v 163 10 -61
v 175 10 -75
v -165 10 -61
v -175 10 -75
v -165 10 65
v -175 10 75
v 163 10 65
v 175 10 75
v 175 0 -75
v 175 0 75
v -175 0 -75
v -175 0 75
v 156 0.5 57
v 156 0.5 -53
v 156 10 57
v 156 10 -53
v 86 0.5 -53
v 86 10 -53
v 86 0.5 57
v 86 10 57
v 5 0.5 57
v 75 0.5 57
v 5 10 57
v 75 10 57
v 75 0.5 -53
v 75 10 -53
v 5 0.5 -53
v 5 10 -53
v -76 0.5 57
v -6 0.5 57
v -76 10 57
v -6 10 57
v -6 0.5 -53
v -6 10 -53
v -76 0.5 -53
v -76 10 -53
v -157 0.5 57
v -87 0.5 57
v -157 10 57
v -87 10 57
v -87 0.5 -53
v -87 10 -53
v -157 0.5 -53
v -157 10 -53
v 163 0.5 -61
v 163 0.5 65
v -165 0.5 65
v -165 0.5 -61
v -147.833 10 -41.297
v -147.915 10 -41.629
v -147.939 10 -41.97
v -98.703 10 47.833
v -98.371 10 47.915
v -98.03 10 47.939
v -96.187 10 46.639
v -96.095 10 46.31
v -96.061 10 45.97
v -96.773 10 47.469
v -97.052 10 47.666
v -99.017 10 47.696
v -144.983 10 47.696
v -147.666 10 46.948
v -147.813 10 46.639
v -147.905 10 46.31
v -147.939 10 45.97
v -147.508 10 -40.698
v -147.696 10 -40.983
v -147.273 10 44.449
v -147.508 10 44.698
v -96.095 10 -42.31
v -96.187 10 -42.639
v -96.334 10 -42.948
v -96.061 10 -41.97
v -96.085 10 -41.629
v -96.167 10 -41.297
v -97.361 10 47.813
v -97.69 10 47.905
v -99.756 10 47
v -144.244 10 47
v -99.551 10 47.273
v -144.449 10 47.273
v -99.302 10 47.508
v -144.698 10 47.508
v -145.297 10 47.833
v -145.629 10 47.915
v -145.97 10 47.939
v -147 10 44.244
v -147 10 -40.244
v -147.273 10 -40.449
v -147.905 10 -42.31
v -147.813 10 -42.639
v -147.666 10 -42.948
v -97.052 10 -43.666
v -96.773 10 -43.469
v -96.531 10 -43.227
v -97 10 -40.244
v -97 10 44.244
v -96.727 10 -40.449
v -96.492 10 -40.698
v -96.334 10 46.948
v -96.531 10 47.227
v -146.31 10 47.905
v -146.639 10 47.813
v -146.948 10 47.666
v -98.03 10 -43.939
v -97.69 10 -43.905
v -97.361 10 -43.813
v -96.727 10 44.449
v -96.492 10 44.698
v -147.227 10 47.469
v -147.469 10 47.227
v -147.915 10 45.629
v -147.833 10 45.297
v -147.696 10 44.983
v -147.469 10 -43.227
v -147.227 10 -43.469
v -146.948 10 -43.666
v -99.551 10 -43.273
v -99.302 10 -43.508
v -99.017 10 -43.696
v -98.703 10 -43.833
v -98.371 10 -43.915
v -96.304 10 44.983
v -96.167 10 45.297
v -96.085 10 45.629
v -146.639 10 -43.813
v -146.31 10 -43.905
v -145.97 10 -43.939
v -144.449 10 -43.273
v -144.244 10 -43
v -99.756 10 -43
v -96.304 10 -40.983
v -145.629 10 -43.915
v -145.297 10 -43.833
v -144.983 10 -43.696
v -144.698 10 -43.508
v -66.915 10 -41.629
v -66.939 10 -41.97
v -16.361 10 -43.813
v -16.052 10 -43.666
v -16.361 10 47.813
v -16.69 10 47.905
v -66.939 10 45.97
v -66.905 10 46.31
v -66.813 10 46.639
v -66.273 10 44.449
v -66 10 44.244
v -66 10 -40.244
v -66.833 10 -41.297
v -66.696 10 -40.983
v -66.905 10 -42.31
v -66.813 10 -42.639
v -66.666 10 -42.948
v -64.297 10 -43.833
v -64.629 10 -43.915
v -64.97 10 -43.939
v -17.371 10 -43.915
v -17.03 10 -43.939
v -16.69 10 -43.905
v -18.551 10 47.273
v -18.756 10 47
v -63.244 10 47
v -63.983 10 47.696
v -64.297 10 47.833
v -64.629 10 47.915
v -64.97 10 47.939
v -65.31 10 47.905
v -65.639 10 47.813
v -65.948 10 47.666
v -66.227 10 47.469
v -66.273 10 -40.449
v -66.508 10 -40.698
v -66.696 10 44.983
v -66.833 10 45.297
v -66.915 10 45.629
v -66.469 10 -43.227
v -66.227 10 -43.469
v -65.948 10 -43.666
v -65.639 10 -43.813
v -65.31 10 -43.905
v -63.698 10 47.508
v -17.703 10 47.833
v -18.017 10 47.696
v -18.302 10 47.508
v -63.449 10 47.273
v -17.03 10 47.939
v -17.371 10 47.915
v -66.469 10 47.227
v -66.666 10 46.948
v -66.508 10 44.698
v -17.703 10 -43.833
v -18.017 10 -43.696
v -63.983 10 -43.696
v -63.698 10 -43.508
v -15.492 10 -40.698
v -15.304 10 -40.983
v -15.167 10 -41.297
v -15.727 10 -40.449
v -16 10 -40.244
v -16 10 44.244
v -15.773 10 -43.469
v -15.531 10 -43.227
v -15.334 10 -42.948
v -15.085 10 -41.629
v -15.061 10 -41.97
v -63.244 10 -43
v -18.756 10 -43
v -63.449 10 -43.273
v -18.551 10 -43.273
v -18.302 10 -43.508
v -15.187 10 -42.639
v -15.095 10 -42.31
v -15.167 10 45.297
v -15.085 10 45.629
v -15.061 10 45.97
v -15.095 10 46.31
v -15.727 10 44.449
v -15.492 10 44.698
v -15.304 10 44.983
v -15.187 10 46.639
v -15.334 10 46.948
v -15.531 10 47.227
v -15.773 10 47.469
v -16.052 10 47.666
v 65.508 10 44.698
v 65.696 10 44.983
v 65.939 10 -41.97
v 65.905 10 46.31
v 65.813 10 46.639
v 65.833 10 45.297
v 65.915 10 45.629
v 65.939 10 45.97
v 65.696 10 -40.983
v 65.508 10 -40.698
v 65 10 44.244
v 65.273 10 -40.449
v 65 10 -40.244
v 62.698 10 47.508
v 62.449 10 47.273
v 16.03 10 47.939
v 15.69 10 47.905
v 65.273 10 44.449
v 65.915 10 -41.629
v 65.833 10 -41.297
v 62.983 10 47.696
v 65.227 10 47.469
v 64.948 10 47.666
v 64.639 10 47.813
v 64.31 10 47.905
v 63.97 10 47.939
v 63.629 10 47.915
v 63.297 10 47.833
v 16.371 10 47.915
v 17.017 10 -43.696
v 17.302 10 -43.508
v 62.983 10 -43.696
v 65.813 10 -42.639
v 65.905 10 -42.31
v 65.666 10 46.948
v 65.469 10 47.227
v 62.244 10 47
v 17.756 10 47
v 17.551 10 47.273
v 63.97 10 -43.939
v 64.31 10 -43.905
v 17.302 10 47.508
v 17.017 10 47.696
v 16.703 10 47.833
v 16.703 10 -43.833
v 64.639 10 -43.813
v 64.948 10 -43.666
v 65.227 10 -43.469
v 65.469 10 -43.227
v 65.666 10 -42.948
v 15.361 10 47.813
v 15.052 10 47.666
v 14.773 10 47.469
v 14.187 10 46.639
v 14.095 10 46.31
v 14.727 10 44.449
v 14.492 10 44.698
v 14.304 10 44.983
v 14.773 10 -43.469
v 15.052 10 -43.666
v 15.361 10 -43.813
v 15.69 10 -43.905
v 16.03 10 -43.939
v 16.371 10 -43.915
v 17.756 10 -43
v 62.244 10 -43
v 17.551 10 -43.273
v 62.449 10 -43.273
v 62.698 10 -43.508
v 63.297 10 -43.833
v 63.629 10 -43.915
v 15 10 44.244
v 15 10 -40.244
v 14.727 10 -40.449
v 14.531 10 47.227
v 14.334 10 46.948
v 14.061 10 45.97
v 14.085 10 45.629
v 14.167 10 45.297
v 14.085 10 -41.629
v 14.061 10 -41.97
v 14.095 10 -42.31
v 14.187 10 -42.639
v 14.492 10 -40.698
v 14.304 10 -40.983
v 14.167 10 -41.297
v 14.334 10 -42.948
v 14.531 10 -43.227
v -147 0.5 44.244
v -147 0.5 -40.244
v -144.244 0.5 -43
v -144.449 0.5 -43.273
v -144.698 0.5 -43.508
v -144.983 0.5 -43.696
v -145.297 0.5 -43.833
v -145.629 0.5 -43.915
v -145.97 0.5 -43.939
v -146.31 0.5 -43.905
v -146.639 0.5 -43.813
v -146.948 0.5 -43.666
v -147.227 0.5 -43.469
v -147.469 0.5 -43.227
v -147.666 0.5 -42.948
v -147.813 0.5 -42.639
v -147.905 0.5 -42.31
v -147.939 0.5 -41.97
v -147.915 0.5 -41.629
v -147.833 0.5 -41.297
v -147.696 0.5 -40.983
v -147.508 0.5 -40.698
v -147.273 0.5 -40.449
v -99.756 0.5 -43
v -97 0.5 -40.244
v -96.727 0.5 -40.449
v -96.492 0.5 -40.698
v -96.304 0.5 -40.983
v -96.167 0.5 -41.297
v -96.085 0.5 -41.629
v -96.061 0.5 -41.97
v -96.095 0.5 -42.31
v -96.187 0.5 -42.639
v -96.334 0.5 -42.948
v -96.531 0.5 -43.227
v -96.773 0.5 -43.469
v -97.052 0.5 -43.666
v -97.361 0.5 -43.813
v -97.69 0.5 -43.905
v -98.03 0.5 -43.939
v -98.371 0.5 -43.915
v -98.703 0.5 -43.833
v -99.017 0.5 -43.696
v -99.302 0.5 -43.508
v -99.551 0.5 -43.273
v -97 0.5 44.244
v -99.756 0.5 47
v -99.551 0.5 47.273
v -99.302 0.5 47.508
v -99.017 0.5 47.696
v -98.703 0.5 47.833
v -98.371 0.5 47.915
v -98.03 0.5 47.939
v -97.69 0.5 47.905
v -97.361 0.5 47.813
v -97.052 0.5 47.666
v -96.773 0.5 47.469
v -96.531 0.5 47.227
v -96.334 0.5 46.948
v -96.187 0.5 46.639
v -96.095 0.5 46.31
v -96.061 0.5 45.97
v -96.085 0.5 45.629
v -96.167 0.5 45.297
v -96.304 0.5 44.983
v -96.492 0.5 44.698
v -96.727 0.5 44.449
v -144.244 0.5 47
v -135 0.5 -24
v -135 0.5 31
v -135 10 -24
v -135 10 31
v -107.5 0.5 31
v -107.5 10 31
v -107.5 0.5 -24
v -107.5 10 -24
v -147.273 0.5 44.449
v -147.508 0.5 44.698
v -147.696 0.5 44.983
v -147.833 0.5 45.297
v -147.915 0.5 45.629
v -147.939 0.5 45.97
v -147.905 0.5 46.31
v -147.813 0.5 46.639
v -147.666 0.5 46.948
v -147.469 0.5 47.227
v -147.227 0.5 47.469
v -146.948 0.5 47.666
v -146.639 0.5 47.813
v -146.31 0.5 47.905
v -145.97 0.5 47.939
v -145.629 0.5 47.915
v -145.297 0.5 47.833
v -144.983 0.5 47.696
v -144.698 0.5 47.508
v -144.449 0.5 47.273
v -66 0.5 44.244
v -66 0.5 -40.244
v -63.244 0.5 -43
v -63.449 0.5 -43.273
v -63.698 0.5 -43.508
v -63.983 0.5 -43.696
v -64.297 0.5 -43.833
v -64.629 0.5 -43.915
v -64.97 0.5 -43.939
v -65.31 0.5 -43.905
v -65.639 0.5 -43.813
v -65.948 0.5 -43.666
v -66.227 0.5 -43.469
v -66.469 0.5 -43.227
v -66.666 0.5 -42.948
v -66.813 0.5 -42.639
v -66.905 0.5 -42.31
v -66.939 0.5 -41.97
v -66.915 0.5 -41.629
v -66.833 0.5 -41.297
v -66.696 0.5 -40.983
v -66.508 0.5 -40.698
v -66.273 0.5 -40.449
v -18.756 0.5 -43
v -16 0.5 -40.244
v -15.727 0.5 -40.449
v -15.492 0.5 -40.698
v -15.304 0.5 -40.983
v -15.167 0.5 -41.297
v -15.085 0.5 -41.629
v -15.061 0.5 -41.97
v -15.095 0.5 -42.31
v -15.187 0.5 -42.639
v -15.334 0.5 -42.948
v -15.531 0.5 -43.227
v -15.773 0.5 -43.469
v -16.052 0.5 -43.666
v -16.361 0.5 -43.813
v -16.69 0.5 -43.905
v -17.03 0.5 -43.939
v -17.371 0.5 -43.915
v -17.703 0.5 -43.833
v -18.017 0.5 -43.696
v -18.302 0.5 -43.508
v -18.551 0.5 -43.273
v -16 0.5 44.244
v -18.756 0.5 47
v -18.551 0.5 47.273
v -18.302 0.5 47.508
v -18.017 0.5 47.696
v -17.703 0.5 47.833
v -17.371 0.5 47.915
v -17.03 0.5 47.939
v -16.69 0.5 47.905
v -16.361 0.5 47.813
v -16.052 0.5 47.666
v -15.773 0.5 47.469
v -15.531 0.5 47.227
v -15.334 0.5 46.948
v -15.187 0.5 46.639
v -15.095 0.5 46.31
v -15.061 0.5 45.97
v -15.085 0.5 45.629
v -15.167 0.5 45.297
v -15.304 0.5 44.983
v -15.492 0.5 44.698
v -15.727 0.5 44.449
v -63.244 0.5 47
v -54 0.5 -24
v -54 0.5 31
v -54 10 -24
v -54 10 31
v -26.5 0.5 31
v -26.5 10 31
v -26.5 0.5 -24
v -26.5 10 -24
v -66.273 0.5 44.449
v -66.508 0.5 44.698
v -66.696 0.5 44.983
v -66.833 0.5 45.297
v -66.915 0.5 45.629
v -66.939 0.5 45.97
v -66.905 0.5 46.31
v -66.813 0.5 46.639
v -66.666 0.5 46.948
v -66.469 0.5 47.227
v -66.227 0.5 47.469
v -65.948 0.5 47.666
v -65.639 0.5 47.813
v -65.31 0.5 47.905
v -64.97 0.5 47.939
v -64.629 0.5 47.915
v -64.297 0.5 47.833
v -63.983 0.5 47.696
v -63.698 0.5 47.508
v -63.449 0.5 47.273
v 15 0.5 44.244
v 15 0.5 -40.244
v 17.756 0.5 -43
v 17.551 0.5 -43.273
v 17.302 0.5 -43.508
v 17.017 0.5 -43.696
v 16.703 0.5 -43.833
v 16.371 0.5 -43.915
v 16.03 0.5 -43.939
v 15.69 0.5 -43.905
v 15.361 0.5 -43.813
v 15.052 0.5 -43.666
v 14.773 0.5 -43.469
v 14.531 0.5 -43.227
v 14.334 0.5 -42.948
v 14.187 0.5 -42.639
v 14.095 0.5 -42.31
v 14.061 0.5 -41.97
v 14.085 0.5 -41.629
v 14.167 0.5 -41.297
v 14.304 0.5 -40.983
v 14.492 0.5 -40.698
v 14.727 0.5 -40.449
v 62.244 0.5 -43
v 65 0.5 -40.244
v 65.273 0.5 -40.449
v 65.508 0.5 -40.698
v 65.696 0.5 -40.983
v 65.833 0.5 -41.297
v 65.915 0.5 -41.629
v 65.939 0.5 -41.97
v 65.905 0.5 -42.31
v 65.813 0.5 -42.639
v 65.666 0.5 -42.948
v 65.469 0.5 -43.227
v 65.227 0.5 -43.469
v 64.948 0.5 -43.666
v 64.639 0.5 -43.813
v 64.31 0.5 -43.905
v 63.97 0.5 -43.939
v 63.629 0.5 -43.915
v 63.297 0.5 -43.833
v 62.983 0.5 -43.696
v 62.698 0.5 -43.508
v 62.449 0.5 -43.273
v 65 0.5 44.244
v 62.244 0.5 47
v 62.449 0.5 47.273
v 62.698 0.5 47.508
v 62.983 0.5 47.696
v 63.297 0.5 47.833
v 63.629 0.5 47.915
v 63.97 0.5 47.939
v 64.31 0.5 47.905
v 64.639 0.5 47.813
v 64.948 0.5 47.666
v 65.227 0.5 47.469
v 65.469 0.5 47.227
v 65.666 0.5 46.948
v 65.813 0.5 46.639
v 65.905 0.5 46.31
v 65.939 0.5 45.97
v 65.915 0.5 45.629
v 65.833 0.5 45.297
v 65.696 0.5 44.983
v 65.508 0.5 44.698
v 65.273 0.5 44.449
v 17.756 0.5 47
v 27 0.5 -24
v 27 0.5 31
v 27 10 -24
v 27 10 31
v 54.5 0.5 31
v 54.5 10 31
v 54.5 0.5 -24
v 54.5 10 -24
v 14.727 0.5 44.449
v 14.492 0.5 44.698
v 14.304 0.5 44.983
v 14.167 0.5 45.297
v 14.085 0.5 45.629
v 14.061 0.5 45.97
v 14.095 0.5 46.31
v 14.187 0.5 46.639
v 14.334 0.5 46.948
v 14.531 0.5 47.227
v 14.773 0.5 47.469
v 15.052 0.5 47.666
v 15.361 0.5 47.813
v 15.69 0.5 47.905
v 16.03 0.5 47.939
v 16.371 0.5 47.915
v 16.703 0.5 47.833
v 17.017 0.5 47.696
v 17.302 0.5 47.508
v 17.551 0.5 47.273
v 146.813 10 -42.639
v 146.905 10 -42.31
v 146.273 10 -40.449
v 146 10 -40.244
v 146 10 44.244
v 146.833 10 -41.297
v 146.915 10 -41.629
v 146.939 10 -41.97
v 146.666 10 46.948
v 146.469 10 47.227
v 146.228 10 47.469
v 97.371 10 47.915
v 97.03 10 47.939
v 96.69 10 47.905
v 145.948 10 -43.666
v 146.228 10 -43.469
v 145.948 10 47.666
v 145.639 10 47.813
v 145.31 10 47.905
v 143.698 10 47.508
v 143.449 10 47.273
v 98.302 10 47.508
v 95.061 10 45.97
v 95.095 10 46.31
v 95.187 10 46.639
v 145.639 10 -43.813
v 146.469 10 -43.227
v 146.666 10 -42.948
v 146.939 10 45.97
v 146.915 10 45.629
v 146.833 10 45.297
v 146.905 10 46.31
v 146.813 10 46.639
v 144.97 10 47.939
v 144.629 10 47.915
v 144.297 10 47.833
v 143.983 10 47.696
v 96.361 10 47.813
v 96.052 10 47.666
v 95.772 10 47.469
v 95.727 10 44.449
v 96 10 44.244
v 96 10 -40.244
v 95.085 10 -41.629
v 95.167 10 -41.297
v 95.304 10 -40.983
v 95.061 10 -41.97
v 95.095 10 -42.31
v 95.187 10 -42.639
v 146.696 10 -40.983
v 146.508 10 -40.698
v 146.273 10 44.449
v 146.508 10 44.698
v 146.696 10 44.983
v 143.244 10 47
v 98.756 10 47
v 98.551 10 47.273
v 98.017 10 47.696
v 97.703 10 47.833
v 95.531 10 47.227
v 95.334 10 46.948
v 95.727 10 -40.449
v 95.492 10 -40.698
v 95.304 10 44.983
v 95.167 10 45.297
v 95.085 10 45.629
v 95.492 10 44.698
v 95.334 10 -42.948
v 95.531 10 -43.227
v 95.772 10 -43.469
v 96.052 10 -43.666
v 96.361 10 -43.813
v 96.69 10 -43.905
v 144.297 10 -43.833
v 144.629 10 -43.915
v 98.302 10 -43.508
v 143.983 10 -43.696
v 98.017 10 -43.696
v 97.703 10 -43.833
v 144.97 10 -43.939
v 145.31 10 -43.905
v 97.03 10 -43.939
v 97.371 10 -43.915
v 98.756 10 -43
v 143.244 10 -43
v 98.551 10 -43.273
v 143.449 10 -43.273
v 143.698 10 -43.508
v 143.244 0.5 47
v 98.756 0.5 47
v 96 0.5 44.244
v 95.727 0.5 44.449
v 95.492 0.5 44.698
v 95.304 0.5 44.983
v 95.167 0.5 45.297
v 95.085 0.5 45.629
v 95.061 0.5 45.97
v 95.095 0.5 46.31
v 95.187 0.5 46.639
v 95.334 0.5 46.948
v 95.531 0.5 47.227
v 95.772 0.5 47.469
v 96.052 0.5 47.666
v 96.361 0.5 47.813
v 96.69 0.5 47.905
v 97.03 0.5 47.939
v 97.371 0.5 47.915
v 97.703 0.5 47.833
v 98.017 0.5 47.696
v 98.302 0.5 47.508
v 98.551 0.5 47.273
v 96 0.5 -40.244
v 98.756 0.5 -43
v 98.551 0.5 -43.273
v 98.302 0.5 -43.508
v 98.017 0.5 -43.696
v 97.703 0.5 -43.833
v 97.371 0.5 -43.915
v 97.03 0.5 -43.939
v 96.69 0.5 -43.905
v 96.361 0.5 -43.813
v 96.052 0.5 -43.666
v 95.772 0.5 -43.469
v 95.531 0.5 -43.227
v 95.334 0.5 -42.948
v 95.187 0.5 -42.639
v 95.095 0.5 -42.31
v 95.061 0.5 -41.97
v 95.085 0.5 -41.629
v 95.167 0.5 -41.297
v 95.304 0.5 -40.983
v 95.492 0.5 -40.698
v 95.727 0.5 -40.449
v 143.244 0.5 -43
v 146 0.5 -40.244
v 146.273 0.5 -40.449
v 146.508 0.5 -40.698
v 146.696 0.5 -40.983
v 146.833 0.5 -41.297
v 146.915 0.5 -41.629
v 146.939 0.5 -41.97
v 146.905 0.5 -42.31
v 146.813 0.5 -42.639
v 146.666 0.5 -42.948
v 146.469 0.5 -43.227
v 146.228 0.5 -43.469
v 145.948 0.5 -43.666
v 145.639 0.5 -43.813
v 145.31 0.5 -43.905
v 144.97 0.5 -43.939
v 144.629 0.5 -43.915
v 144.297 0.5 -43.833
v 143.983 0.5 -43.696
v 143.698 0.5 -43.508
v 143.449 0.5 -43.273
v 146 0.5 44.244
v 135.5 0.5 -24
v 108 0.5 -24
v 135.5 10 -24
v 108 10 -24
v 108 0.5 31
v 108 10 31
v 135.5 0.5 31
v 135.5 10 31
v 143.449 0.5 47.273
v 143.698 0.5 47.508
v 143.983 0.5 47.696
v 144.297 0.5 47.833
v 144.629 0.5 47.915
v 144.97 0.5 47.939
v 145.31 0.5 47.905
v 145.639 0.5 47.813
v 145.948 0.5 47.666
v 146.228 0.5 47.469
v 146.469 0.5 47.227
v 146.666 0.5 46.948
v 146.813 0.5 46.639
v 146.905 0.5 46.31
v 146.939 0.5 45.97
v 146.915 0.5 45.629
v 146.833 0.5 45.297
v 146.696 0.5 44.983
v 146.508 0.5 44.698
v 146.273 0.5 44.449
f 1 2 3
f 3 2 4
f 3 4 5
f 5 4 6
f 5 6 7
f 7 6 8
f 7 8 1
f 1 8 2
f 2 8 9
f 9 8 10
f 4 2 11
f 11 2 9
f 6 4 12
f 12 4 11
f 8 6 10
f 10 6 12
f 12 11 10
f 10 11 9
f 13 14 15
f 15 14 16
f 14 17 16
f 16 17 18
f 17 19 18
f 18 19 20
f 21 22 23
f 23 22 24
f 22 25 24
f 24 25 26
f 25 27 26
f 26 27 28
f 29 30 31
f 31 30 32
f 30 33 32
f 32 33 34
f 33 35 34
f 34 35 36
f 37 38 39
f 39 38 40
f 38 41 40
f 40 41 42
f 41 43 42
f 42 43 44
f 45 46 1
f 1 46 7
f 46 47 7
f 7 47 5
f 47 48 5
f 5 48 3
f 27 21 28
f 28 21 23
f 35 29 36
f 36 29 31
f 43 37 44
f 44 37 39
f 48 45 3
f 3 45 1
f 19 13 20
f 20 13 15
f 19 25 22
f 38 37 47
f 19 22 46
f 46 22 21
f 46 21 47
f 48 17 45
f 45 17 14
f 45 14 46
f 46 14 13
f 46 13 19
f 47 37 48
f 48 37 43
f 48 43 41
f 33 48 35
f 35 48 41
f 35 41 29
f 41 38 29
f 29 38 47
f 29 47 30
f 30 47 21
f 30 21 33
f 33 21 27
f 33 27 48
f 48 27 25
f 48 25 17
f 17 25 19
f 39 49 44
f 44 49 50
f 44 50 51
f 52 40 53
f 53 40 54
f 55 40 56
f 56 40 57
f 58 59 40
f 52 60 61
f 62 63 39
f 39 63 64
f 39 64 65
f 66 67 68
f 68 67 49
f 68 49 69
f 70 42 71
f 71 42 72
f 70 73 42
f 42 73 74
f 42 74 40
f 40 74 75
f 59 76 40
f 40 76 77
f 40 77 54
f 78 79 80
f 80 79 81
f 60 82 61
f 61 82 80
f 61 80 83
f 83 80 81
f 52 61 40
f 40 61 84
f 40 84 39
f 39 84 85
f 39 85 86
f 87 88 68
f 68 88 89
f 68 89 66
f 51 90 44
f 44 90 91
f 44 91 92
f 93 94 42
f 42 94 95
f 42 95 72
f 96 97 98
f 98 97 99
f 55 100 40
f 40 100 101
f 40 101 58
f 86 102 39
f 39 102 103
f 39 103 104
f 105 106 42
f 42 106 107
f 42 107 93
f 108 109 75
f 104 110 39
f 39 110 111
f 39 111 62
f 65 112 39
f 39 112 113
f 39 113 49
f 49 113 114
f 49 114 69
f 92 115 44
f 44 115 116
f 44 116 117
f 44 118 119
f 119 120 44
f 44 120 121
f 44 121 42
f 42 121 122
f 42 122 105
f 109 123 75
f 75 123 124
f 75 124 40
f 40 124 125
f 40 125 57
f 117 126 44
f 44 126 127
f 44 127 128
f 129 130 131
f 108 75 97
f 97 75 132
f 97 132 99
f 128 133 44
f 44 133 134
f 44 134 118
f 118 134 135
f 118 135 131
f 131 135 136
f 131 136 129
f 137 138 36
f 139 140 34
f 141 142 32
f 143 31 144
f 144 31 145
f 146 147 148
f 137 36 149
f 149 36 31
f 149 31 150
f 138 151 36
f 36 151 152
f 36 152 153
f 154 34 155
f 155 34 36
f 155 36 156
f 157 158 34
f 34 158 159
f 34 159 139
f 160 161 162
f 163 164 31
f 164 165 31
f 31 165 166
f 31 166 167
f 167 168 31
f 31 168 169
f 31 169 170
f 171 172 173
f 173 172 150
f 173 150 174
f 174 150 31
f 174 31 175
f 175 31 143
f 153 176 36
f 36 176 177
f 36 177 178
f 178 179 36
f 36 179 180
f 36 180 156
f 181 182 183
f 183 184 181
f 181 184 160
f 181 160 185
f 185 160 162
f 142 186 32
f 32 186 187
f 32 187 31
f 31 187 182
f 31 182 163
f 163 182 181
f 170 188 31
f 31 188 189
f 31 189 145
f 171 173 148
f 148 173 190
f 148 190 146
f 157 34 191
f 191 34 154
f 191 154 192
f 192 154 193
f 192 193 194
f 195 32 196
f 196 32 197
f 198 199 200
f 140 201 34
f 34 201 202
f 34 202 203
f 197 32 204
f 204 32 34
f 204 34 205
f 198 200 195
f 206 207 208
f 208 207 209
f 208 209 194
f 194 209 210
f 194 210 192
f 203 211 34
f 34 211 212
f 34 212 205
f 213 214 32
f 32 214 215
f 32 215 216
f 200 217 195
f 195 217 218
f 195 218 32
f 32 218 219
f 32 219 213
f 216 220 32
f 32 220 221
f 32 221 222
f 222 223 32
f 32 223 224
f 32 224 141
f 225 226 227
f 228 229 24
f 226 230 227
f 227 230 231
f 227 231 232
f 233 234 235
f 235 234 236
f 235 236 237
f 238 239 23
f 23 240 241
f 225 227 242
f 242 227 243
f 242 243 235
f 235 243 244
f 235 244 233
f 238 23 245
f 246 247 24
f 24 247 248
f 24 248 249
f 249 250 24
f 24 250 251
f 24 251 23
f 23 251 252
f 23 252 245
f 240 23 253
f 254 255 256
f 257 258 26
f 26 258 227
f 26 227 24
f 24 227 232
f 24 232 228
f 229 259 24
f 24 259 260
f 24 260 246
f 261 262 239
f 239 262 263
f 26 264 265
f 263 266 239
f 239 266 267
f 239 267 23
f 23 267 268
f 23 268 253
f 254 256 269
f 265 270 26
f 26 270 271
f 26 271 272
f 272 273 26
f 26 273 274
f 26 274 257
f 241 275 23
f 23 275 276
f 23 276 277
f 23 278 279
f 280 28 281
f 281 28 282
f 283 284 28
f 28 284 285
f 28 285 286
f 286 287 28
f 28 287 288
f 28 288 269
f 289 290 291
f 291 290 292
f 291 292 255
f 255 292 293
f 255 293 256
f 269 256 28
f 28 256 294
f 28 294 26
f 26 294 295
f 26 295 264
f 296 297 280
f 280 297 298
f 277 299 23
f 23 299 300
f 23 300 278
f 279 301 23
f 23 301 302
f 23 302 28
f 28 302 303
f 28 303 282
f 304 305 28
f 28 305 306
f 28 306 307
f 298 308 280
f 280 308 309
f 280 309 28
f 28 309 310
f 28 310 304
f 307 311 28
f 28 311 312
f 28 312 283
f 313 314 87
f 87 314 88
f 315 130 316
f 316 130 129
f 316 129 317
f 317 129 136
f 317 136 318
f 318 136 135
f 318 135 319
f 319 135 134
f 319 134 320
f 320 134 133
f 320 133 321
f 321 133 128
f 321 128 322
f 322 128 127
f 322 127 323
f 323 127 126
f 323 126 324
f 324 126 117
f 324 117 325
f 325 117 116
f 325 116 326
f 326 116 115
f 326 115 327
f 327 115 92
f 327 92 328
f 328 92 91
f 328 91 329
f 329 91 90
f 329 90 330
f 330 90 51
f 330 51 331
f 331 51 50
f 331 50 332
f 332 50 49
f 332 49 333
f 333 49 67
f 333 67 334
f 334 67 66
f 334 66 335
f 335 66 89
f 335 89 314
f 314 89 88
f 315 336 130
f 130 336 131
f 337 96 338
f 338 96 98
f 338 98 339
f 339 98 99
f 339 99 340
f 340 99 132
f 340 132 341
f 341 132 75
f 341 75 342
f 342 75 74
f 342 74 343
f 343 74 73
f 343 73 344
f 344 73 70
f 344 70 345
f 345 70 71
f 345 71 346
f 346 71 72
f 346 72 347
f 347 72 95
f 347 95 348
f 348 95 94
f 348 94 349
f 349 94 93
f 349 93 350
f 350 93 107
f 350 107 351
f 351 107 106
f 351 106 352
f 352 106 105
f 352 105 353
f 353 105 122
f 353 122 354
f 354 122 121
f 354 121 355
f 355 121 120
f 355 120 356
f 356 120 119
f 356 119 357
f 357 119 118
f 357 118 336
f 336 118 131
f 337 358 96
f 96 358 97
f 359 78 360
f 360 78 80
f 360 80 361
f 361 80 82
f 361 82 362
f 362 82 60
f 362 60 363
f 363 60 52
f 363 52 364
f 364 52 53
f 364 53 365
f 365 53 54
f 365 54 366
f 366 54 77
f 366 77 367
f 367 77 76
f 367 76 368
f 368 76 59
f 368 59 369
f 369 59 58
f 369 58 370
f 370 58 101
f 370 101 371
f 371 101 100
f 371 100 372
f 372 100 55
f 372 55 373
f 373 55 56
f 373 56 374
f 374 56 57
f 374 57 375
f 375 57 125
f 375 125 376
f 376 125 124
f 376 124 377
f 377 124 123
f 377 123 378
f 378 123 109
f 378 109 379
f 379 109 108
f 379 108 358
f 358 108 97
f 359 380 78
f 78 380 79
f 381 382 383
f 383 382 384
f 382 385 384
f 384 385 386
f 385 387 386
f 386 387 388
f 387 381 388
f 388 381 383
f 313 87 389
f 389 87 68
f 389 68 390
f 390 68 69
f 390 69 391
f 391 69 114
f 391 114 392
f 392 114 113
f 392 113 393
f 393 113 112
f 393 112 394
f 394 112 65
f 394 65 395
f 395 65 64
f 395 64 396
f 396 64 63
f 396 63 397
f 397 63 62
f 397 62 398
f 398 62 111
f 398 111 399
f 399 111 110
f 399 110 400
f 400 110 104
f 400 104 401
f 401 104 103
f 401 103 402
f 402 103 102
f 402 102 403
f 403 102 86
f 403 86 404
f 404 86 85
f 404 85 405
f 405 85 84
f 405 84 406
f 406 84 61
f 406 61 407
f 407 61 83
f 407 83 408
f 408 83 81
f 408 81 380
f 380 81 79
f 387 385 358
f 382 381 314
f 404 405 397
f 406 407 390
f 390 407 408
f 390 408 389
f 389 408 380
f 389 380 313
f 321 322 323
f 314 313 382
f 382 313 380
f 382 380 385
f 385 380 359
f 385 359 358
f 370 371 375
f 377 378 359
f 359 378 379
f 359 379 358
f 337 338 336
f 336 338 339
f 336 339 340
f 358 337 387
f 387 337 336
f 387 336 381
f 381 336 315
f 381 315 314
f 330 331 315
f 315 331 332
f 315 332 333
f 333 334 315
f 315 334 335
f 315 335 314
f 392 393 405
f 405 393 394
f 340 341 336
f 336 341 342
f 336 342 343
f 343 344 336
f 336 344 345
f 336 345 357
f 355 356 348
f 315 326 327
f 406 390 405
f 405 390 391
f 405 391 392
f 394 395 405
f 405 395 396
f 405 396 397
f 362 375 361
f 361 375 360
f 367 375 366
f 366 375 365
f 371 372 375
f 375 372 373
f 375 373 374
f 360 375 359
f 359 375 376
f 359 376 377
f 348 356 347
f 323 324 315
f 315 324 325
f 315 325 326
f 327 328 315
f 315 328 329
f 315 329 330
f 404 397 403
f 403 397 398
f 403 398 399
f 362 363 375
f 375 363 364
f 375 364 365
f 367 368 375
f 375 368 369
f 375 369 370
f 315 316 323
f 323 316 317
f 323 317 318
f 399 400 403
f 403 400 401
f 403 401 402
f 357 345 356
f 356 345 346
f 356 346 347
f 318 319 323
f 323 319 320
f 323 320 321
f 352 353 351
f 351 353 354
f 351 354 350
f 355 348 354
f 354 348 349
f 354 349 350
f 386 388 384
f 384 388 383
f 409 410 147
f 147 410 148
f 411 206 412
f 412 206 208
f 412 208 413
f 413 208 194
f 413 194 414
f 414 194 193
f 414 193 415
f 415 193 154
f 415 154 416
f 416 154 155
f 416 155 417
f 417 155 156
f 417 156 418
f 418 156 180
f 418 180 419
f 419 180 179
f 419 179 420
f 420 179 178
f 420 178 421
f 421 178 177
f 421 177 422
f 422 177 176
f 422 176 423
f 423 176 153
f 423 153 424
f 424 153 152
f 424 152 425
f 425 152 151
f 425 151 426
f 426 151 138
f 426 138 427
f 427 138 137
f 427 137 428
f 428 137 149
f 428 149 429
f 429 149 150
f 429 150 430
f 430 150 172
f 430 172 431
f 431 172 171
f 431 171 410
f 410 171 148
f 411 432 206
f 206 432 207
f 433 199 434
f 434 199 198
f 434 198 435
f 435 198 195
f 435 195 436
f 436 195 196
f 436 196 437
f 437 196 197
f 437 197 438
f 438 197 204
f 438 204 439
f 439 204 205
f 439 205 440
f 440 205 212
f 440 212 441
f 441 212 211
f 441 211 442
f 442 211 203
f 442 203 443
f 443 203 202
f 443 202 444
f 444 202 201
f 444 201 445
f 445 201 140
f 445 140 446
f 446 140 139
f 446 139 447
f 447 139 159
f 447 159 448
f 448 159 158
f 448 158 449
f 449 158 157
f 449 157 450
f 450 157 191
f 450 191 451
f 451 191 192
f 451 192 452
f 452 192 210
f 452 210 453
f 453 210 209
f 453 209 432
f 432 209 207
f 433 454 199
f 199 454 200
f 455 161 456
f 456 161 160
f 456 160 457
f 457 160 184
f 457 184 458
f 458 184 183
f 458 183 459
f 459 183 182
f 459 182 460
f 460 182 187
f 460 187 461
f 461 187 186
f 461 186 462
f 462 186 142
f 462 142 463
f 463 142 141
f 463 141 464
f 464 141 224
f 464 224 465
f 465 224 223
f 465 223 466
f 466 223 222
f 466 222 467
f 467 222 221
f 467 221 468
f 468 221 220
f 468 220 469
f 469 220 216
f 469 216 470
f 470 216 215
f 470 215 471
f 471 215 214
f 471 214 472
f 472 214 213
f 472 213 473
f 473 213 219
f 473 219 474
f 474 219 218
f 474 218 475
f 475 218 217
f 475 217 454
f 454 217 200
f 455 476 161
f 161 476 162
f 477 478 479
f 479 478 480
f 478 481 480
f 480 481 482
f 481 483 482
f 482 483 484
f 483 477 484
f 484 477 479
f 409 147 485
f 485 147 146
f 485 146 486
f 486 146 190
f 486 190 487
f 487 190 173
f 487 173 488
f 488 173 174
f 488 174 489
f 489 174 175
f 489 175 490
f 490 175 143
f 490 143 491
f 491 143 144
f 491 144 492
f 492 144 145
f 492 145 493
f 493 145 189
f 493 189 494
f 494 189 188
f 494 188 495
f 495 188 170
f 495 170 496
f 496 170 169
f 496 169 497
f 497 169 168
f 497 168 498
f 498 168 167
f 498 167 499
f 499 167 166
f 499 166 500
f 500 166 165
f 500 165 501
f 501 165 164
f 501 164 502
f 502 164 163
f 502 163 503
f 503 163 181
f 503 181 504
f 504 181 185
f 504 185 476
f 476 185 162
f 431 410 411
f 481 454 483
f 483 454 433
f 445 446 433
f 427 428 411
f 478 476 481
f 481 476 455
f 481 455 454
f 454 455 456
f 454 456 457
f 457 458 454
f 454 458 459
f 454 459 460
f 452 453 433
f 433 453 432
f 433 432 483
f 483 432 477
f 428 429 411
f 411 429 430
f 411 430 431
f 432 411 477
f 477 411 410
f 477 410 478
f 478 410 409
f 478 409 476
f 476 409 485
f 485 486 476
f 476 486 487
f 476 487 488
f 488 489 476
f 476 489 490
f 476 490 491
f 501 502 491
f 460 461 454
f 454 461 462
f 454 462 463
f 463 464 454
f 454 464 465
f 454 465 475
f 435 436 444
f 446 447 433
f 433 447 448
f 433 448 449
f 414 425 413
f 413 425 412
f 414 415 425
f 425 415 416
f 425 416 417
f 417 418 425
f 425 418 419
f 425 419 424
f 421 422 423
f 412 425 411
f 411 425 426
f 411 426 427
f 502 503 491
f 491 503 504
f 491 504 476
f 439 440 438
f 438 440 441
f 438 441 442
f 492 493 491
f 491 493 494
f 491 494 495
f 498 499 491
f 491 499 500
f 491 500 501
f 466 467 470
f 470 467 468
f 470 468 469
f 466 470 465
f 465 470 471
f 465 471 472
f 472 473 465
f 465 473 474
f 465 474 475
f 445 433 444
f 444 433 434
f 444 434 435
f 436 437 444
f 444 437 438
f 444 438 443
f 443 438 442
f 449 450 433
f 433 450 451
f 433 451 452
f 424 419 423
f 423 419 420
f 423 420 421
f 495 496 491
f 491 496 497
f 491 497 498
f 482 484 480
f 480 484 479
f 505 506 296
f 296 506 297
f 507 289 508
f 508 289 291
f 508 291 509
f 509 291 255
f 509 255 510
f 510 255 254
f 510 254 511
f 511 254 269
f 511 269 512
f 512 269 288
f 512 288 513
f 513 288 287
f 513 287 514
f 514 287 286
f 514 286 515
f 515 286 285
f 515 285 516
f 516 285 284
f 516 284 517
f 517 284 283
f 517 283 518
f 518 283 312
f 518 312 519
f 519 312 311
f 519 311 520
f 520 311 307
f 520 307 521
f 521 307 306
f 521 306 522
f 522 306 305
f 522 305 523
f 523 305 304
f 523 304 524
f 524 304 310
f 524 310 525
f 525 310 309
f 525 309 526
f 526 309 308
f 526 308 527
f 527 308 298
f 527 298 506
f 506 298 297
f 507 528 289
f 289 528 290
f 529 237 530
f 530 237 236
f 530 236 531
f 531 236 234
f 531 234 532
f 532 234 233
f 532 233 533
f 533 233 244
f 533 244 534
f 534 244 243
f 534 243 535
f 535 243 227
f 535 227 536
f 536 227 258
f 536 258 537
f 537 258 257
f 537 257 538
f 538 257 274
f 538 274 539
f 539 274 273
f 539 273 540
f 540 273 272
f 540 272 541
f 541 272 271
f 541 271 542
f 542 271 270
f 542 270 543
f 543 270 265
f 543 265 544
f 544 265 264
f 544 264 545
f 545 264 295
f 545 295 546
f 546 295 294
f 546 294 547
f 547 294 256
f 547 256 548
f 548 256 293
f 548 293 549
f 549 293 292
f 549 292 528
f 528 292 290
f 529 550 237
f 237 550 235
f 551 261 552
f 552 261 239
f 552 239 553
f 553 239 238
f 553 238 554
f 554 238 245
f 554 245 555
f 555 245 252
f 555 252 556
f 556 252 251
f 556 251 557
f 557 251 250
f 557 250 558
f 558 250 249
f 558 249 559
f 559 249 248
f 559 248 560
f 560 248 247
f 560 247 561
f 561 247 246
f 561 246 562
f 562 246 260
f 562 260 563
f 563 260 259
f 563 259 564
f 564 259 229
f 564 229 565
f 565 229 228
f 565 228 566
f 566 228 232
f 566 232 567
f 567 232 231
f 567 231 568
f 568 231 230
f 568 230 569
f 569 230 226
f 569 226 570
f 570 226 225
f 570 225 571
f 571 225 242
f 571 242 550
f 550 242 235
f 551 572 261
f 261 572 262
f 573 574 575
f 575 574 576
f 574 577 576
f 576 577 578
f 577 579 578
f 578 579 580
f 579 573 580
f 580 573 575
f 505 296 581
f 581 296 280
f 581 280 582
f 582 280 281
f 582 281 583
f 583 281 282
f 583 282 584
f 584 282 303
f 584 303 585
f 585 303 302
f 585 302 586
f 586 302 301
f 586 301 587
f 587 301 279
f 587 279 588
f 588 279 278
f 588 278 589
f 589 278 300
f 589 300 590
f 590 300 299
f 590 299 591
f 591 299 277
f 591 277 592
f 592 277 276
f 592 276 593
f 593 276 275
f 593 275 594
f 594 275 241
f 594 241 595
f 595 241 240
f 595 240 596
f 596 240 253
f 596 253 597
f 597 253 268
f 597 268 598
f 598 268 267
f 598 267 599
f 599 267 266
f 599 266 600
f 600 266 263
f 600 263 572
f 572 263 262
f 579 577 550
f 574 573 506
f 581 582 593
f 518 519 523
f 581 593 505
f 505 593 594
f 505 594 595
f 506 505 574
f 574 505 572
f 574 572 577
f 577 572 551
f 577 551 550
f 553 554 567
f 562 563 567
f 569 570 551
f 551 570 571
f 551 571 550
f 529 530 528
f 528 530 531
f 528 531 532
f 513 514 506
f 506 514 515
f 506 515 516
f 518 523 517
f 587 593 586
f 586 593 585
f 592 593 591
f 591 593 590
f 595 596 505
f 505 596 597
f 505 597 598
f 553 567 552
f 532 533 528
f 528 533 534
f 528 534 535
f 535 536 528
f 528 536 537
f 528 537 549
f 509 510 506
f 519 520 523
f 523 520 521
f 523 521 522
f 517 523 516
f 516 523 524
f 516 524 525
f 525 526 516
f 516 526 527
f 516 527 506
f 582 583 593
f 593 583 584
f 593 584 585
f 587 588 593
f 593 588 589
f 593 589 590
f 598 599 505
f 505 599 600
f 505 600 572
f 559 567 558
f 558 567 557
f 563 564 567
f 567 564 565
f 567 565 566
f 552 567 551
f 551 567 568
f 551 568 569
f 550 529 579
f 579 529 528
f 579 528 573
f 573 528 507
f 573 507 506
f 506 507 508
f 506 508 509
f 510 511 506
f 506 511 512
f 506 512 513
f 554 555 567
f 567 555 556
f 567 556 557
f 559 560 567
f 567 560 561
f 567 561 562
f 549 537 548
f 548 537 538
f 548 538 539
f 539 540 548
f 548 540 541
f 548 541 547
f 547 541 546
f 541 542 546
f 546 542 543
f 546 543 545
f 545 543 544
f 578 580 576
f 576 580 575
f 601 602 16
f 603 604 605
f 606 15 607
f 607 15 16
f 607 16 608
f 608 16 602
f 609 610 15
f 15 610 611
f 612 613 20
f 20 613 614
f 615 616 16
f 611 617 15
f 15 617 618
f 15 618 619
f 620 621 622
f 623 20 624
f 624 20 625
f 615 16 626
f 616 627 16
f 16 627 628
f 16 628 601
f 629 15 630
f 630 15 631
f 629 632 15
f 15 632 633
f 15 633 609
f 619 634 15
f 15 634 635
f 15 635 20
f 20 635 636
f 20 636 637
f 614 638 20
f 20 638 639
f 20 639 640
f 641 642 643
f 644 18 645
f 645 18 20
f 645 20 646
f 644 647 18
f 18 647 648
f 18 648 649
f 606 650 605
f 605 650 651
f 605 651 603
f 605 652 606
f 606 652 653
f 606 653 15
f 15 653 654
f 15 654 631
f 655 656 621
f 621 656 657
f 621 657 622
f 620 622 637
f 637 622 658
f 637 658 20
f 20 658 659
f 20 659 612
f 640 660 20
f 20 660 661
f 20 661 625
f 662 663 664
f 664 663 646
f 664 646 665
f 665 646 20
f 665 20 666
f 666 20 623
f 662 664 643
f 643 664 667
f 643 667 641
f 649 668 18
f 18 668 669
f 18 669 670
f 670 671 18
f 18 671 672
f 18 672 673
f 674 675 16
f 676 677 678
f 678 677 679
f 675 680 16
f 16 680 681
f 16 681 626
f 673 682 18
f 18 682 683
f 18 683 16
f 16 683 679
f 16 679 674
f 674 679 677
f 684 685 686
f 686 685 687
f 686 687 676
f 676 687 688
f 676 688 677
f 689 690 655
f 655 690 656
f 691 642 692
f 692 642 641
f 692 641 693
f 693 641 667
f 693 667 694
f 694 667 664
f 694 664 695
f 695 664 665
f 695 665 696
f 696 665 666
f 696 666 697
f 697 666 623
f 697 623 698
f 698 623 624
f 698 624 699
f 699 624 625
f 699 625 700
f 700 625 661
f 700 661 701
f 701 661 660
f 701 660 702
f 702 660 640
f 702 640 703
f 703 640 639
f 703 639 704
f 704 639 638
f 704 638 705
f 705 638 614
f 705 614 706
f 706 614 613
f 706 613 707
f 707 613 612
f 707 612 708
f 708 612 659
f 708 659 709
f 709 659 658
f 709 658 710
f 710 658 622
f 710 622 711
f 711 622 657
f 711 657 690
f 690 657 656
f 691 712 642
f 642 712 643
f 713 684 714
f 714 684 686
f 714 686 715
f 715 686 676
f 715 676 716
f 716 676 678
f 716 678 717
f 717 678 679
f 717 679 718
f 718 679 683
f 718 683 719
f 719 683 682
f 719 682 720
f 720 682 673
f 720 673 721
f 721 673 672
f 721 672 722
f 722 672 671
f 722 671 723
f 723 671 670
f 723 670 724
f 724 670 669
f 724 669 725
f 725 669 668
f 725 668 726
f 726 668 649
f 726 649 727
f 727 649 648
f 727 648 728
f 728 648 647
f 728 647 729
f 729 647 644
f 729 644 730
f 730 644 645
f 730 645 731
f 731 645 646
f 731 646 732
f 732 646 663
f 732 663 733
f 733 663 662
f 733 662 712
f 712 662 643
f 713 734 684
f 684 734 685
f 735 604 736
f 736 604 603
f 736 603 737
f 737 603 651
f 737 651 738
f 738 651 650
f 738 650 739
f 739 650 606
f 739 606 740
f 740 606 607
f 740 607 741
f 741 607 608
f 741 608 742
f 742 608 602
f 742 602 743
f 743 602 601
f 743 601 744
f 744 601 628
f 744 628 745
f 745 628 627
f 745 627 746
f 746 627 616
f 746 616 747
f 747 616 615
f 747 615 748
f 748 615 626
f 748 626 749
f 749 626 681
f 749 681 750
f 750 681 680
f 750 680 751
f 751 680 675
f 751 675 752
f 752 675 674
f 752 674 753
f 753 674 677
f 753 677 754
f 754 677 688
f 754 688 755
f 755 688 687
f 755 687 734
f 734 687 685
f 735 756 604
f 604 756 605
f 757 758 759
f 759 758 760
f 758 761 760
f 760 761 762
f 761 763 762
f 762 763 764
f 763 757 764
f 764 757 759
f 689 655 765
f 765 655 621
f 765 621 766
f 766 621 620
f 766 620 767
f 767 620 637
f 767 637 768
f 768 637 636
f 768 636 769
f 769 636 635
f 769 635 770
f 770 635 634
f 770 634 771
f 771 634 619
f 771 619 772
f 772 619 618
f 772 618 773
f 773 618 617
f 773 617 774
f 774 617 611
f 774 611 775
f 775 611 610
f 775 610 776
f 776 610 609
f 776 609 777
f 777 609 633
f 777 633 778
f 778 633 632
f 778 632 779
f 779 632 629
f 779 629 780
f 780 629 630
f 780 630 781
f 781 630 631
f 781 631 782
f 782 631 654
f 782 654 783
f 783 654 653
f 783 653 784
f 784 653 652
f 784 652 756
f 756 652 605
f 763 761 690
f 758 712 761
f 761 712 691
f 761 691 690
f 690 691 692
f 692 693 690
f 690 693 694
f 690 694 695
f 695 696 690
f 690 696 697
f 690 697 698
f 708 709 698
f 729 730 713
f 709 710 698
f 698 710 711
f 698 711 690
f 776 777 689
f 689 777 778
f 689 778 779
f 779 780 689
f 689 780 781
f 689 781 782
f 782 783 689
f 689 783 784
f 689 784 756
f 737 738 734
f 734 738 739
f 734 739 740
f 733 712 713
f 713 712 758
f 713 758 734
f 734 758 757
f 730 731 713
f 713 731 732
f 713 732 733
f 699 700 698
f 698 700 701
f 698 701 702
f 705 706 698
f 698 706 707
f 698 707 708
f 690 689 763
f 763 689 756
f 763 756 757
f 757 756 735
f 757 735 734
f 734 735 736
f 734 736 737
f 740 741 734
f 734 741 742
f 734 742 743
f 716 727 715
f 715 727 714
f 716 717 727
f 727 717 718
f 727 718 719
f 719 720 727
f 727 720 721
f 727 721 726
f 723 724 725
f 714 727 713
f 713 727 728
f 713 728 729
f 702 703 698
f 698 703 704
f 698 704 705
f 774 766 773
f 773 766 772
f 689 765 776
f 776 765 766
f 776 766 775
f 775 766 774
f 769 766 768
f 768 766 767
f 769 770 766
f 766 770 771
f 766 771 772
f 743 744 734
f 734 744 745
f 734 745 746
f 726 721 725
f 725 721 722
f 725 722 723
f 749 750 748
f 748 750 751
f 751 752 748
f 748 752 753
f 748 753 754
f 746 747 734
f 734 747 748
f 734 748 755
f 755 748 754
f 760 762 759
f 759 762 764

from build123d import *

# Parameters (mm, degrees)
SKETCH1_W           = 350
SKETCH1_H           = 150
BOSS_EXTRUDE1_DEPTH = 10
SKETCH2_W           = 328
SKETCH2_H           = 126
SKETCH2_W_2         = 70
SKETCH2_H_2         = 110
SKETCH2_W_3         = 27.5
SKETCH2_H_3         = 55
CUT_EXTRUDE1_DEPTH  = 9.5


with BuildPart() as part:
    # Sketch1 → Boss-Extrude1 (new body)
    with BuildSketch(Plane(origin=(0, 0, 0), x_dir=(1, 0, 0), z_dir=(0, 1, 0))):
        Rectangle(SKETCH1_W, SKETCH1_H)
    extrude(amount=BOSS_EXTRUDE1_DEPTH)

    # Sketch2 → Cut-Extrude1 (cut)
    # profile 1 of 5: a face of its own
    with BuildSketch(Plane(origin=(0, 10, 0), x_dir=(1, 0, 0), z_dir=(0, 1, 0))):
        with Locations((-1, -2)):
            Rectangle(SKETCH2_W, SKETCH2_H)
        with Locations((-122, -2)):
            Rectangle(SKETCH2_W_2, SKETCH2_H_2, mode=Mode.SUBTRACT)
        with Locations((-41, -2)):
            Rectangle(SKETCH2_W_2, SKETCH2_H_2, mode=Mode.SUBTRACT)
        with Locations((40, -2)):
            Rectangle(SKETCH2_W_2, SKETCH2_H_2, mode=Mode.SUBTRACT)
        with Locations((121, -2)):
            Rectangle(SKETCH2_W_2, SKETCH2_H_2, mode=Mode.SUBTRACT)
    # profile 2 of 5: a face of its own
    with BuildSketch(Plane(origin=(0, 10, 0), x_dir=(1, 0, 0), z_dir=(0, 1, 0))):
        with BuildLine():
            Line((-147, -44.243757332), (-147, 40.243757332))
            ThreePointArc((-147, 40.243757332), (-147.353553391, 43.353553391), (-144.243757332, 43))
            Line((-144.243757332, 43), (-99.756242668, 43))
            ThreePointArc((-99.756242668, 43), (-96.646446609, 43.353553391), (-97, 40.243757332))
            Line((-97, 40.243757332), (-97, -44.243757332))
            ThreePointArc((-97, -44.243757332), (-96.646446609, -47.353553391), (-99.756242668, -47))
            Line((-99.756242668, -47), (-144.243757332, -47))
            ThreePointArc((-144.243757332, -47), (-147.353553391, -47.353553391), (-147, -44.243757332))
        make_face()
        with Locations((-121.25, -3.5)):
            Rectangle(SKETCH2_W_3, SKETCH2_H_3, mode=Mode.SUBTRACT)
    # profile 3 of 5: a face of its own
    with BuildSketch(Plane(origin=(0, 10, 0), x_dir=(1, 0, 0), z_dir=(0, 1, 0))):
        with BuildLine():
            Line((-66, -44.243757332), (-66, 40.243757332))
            ThreePointArc((-66, 40.243757332), (-66.353553391, 43.353553391), (-63.243757332, 43))
            Line((-63.243757332, 43), (-18.756242668, 43))
            ThreePointArc((-18.756242668, 43), (-15.646446609, 43.353553391), (-16, 40.243757332))
            Line((-16, 40.243757332), (-16, -44.243757332))
            ThreePointArc((-16, -44.243757332), (-15.646446609, -47.353553391), (-18.756242668, -47))
            Line((-18.756242668, -47), (-63.243757332, -47))
            ThreePointArc((-63.243757332, -47), (-66.353553391, -47.353553391), (-66, -44.243757332))
        make_face()
        with Locations((-40.25, -3.5)):
            Rectangle(SKETCH2_W_3, SKETCH2_H_3, mode=Mode.SUBTRACT)
    # profile 4 of 5: a face of its own
    with BuildSketch(Plane(origin=(0, 10, 0), x_dir=(1, 0, 0), z_dir=(0, 1, 0))):
        with BuildLine():
            Line((15, -44.243757332), (15, 40.243757332))
            ThreePointArc((15, 40.243757332), (14.646446609, 43.353553391), (17.756242668, 43))
            Line((17.756242668, 43), (62.243757332, 43))
            ThreePointArc((62.243757332, 43), (65.353553391, 43.353553391), (65, 40.243757332))
            Line((65, 40.243757332), (65, -44.243757332))
            ThreePointArc((65, -44.243757332), (65.353553391, -47.353553391), (62.243757332, -47))
            Line((62.243757332, -47), (17.756242668, -47))
            ThreePointArc((17.756242668, -47), (14.646446609, -47.353553391), (15, -44.243757332))
        make_face()
        with Locations((40.75, -3.5)):
            Rectangle(SKETCH2_W_3, SKETCH2_H_3, mode=Mode.SUBTRACT)
    # profile 5 of 5: a face of its own
    with BuildSketch(Plane(origin=(0, 10, 0), x_dir=(1, 0, 0), z_dir=(0, 1, 0))):
        with BuildLine():
            Line((98.756242668, -47), (143.243757332, -47))
            ThreePointArc((143.243757332, -47), (146.353553391, -47.353553391), (146, -44.243757332))
            Line((146, -44.243757332), (146, 40.243757332))
            ThreePointArc((146, 40.243757332), (146.353553391, 43.353553391), (143.243757332, 43))
            Line((143.243757332, 43), (98.756242668, 43))
            ThreePointArc((98.756242668, 43), (95.646446609, 43.353553391), (96, 40.243757332))
            Line((96, 40.243757332), (96, -44.243757332))
            ThreePointArc((96, -44.243757332), (95.646446609, -47.353553391), (98.756242668, -47))
        make_face()
        with Locations((121.75, -3.5)):
            Rectangle(SKETCH2_W_3, SKETCH2_H_3, mode=Mode.SUBTRACT)
    extrude(amount=-CUT_EXTRUDE1_DEPTH, mode=Mode.SUBTRACT)


solid = part.part
